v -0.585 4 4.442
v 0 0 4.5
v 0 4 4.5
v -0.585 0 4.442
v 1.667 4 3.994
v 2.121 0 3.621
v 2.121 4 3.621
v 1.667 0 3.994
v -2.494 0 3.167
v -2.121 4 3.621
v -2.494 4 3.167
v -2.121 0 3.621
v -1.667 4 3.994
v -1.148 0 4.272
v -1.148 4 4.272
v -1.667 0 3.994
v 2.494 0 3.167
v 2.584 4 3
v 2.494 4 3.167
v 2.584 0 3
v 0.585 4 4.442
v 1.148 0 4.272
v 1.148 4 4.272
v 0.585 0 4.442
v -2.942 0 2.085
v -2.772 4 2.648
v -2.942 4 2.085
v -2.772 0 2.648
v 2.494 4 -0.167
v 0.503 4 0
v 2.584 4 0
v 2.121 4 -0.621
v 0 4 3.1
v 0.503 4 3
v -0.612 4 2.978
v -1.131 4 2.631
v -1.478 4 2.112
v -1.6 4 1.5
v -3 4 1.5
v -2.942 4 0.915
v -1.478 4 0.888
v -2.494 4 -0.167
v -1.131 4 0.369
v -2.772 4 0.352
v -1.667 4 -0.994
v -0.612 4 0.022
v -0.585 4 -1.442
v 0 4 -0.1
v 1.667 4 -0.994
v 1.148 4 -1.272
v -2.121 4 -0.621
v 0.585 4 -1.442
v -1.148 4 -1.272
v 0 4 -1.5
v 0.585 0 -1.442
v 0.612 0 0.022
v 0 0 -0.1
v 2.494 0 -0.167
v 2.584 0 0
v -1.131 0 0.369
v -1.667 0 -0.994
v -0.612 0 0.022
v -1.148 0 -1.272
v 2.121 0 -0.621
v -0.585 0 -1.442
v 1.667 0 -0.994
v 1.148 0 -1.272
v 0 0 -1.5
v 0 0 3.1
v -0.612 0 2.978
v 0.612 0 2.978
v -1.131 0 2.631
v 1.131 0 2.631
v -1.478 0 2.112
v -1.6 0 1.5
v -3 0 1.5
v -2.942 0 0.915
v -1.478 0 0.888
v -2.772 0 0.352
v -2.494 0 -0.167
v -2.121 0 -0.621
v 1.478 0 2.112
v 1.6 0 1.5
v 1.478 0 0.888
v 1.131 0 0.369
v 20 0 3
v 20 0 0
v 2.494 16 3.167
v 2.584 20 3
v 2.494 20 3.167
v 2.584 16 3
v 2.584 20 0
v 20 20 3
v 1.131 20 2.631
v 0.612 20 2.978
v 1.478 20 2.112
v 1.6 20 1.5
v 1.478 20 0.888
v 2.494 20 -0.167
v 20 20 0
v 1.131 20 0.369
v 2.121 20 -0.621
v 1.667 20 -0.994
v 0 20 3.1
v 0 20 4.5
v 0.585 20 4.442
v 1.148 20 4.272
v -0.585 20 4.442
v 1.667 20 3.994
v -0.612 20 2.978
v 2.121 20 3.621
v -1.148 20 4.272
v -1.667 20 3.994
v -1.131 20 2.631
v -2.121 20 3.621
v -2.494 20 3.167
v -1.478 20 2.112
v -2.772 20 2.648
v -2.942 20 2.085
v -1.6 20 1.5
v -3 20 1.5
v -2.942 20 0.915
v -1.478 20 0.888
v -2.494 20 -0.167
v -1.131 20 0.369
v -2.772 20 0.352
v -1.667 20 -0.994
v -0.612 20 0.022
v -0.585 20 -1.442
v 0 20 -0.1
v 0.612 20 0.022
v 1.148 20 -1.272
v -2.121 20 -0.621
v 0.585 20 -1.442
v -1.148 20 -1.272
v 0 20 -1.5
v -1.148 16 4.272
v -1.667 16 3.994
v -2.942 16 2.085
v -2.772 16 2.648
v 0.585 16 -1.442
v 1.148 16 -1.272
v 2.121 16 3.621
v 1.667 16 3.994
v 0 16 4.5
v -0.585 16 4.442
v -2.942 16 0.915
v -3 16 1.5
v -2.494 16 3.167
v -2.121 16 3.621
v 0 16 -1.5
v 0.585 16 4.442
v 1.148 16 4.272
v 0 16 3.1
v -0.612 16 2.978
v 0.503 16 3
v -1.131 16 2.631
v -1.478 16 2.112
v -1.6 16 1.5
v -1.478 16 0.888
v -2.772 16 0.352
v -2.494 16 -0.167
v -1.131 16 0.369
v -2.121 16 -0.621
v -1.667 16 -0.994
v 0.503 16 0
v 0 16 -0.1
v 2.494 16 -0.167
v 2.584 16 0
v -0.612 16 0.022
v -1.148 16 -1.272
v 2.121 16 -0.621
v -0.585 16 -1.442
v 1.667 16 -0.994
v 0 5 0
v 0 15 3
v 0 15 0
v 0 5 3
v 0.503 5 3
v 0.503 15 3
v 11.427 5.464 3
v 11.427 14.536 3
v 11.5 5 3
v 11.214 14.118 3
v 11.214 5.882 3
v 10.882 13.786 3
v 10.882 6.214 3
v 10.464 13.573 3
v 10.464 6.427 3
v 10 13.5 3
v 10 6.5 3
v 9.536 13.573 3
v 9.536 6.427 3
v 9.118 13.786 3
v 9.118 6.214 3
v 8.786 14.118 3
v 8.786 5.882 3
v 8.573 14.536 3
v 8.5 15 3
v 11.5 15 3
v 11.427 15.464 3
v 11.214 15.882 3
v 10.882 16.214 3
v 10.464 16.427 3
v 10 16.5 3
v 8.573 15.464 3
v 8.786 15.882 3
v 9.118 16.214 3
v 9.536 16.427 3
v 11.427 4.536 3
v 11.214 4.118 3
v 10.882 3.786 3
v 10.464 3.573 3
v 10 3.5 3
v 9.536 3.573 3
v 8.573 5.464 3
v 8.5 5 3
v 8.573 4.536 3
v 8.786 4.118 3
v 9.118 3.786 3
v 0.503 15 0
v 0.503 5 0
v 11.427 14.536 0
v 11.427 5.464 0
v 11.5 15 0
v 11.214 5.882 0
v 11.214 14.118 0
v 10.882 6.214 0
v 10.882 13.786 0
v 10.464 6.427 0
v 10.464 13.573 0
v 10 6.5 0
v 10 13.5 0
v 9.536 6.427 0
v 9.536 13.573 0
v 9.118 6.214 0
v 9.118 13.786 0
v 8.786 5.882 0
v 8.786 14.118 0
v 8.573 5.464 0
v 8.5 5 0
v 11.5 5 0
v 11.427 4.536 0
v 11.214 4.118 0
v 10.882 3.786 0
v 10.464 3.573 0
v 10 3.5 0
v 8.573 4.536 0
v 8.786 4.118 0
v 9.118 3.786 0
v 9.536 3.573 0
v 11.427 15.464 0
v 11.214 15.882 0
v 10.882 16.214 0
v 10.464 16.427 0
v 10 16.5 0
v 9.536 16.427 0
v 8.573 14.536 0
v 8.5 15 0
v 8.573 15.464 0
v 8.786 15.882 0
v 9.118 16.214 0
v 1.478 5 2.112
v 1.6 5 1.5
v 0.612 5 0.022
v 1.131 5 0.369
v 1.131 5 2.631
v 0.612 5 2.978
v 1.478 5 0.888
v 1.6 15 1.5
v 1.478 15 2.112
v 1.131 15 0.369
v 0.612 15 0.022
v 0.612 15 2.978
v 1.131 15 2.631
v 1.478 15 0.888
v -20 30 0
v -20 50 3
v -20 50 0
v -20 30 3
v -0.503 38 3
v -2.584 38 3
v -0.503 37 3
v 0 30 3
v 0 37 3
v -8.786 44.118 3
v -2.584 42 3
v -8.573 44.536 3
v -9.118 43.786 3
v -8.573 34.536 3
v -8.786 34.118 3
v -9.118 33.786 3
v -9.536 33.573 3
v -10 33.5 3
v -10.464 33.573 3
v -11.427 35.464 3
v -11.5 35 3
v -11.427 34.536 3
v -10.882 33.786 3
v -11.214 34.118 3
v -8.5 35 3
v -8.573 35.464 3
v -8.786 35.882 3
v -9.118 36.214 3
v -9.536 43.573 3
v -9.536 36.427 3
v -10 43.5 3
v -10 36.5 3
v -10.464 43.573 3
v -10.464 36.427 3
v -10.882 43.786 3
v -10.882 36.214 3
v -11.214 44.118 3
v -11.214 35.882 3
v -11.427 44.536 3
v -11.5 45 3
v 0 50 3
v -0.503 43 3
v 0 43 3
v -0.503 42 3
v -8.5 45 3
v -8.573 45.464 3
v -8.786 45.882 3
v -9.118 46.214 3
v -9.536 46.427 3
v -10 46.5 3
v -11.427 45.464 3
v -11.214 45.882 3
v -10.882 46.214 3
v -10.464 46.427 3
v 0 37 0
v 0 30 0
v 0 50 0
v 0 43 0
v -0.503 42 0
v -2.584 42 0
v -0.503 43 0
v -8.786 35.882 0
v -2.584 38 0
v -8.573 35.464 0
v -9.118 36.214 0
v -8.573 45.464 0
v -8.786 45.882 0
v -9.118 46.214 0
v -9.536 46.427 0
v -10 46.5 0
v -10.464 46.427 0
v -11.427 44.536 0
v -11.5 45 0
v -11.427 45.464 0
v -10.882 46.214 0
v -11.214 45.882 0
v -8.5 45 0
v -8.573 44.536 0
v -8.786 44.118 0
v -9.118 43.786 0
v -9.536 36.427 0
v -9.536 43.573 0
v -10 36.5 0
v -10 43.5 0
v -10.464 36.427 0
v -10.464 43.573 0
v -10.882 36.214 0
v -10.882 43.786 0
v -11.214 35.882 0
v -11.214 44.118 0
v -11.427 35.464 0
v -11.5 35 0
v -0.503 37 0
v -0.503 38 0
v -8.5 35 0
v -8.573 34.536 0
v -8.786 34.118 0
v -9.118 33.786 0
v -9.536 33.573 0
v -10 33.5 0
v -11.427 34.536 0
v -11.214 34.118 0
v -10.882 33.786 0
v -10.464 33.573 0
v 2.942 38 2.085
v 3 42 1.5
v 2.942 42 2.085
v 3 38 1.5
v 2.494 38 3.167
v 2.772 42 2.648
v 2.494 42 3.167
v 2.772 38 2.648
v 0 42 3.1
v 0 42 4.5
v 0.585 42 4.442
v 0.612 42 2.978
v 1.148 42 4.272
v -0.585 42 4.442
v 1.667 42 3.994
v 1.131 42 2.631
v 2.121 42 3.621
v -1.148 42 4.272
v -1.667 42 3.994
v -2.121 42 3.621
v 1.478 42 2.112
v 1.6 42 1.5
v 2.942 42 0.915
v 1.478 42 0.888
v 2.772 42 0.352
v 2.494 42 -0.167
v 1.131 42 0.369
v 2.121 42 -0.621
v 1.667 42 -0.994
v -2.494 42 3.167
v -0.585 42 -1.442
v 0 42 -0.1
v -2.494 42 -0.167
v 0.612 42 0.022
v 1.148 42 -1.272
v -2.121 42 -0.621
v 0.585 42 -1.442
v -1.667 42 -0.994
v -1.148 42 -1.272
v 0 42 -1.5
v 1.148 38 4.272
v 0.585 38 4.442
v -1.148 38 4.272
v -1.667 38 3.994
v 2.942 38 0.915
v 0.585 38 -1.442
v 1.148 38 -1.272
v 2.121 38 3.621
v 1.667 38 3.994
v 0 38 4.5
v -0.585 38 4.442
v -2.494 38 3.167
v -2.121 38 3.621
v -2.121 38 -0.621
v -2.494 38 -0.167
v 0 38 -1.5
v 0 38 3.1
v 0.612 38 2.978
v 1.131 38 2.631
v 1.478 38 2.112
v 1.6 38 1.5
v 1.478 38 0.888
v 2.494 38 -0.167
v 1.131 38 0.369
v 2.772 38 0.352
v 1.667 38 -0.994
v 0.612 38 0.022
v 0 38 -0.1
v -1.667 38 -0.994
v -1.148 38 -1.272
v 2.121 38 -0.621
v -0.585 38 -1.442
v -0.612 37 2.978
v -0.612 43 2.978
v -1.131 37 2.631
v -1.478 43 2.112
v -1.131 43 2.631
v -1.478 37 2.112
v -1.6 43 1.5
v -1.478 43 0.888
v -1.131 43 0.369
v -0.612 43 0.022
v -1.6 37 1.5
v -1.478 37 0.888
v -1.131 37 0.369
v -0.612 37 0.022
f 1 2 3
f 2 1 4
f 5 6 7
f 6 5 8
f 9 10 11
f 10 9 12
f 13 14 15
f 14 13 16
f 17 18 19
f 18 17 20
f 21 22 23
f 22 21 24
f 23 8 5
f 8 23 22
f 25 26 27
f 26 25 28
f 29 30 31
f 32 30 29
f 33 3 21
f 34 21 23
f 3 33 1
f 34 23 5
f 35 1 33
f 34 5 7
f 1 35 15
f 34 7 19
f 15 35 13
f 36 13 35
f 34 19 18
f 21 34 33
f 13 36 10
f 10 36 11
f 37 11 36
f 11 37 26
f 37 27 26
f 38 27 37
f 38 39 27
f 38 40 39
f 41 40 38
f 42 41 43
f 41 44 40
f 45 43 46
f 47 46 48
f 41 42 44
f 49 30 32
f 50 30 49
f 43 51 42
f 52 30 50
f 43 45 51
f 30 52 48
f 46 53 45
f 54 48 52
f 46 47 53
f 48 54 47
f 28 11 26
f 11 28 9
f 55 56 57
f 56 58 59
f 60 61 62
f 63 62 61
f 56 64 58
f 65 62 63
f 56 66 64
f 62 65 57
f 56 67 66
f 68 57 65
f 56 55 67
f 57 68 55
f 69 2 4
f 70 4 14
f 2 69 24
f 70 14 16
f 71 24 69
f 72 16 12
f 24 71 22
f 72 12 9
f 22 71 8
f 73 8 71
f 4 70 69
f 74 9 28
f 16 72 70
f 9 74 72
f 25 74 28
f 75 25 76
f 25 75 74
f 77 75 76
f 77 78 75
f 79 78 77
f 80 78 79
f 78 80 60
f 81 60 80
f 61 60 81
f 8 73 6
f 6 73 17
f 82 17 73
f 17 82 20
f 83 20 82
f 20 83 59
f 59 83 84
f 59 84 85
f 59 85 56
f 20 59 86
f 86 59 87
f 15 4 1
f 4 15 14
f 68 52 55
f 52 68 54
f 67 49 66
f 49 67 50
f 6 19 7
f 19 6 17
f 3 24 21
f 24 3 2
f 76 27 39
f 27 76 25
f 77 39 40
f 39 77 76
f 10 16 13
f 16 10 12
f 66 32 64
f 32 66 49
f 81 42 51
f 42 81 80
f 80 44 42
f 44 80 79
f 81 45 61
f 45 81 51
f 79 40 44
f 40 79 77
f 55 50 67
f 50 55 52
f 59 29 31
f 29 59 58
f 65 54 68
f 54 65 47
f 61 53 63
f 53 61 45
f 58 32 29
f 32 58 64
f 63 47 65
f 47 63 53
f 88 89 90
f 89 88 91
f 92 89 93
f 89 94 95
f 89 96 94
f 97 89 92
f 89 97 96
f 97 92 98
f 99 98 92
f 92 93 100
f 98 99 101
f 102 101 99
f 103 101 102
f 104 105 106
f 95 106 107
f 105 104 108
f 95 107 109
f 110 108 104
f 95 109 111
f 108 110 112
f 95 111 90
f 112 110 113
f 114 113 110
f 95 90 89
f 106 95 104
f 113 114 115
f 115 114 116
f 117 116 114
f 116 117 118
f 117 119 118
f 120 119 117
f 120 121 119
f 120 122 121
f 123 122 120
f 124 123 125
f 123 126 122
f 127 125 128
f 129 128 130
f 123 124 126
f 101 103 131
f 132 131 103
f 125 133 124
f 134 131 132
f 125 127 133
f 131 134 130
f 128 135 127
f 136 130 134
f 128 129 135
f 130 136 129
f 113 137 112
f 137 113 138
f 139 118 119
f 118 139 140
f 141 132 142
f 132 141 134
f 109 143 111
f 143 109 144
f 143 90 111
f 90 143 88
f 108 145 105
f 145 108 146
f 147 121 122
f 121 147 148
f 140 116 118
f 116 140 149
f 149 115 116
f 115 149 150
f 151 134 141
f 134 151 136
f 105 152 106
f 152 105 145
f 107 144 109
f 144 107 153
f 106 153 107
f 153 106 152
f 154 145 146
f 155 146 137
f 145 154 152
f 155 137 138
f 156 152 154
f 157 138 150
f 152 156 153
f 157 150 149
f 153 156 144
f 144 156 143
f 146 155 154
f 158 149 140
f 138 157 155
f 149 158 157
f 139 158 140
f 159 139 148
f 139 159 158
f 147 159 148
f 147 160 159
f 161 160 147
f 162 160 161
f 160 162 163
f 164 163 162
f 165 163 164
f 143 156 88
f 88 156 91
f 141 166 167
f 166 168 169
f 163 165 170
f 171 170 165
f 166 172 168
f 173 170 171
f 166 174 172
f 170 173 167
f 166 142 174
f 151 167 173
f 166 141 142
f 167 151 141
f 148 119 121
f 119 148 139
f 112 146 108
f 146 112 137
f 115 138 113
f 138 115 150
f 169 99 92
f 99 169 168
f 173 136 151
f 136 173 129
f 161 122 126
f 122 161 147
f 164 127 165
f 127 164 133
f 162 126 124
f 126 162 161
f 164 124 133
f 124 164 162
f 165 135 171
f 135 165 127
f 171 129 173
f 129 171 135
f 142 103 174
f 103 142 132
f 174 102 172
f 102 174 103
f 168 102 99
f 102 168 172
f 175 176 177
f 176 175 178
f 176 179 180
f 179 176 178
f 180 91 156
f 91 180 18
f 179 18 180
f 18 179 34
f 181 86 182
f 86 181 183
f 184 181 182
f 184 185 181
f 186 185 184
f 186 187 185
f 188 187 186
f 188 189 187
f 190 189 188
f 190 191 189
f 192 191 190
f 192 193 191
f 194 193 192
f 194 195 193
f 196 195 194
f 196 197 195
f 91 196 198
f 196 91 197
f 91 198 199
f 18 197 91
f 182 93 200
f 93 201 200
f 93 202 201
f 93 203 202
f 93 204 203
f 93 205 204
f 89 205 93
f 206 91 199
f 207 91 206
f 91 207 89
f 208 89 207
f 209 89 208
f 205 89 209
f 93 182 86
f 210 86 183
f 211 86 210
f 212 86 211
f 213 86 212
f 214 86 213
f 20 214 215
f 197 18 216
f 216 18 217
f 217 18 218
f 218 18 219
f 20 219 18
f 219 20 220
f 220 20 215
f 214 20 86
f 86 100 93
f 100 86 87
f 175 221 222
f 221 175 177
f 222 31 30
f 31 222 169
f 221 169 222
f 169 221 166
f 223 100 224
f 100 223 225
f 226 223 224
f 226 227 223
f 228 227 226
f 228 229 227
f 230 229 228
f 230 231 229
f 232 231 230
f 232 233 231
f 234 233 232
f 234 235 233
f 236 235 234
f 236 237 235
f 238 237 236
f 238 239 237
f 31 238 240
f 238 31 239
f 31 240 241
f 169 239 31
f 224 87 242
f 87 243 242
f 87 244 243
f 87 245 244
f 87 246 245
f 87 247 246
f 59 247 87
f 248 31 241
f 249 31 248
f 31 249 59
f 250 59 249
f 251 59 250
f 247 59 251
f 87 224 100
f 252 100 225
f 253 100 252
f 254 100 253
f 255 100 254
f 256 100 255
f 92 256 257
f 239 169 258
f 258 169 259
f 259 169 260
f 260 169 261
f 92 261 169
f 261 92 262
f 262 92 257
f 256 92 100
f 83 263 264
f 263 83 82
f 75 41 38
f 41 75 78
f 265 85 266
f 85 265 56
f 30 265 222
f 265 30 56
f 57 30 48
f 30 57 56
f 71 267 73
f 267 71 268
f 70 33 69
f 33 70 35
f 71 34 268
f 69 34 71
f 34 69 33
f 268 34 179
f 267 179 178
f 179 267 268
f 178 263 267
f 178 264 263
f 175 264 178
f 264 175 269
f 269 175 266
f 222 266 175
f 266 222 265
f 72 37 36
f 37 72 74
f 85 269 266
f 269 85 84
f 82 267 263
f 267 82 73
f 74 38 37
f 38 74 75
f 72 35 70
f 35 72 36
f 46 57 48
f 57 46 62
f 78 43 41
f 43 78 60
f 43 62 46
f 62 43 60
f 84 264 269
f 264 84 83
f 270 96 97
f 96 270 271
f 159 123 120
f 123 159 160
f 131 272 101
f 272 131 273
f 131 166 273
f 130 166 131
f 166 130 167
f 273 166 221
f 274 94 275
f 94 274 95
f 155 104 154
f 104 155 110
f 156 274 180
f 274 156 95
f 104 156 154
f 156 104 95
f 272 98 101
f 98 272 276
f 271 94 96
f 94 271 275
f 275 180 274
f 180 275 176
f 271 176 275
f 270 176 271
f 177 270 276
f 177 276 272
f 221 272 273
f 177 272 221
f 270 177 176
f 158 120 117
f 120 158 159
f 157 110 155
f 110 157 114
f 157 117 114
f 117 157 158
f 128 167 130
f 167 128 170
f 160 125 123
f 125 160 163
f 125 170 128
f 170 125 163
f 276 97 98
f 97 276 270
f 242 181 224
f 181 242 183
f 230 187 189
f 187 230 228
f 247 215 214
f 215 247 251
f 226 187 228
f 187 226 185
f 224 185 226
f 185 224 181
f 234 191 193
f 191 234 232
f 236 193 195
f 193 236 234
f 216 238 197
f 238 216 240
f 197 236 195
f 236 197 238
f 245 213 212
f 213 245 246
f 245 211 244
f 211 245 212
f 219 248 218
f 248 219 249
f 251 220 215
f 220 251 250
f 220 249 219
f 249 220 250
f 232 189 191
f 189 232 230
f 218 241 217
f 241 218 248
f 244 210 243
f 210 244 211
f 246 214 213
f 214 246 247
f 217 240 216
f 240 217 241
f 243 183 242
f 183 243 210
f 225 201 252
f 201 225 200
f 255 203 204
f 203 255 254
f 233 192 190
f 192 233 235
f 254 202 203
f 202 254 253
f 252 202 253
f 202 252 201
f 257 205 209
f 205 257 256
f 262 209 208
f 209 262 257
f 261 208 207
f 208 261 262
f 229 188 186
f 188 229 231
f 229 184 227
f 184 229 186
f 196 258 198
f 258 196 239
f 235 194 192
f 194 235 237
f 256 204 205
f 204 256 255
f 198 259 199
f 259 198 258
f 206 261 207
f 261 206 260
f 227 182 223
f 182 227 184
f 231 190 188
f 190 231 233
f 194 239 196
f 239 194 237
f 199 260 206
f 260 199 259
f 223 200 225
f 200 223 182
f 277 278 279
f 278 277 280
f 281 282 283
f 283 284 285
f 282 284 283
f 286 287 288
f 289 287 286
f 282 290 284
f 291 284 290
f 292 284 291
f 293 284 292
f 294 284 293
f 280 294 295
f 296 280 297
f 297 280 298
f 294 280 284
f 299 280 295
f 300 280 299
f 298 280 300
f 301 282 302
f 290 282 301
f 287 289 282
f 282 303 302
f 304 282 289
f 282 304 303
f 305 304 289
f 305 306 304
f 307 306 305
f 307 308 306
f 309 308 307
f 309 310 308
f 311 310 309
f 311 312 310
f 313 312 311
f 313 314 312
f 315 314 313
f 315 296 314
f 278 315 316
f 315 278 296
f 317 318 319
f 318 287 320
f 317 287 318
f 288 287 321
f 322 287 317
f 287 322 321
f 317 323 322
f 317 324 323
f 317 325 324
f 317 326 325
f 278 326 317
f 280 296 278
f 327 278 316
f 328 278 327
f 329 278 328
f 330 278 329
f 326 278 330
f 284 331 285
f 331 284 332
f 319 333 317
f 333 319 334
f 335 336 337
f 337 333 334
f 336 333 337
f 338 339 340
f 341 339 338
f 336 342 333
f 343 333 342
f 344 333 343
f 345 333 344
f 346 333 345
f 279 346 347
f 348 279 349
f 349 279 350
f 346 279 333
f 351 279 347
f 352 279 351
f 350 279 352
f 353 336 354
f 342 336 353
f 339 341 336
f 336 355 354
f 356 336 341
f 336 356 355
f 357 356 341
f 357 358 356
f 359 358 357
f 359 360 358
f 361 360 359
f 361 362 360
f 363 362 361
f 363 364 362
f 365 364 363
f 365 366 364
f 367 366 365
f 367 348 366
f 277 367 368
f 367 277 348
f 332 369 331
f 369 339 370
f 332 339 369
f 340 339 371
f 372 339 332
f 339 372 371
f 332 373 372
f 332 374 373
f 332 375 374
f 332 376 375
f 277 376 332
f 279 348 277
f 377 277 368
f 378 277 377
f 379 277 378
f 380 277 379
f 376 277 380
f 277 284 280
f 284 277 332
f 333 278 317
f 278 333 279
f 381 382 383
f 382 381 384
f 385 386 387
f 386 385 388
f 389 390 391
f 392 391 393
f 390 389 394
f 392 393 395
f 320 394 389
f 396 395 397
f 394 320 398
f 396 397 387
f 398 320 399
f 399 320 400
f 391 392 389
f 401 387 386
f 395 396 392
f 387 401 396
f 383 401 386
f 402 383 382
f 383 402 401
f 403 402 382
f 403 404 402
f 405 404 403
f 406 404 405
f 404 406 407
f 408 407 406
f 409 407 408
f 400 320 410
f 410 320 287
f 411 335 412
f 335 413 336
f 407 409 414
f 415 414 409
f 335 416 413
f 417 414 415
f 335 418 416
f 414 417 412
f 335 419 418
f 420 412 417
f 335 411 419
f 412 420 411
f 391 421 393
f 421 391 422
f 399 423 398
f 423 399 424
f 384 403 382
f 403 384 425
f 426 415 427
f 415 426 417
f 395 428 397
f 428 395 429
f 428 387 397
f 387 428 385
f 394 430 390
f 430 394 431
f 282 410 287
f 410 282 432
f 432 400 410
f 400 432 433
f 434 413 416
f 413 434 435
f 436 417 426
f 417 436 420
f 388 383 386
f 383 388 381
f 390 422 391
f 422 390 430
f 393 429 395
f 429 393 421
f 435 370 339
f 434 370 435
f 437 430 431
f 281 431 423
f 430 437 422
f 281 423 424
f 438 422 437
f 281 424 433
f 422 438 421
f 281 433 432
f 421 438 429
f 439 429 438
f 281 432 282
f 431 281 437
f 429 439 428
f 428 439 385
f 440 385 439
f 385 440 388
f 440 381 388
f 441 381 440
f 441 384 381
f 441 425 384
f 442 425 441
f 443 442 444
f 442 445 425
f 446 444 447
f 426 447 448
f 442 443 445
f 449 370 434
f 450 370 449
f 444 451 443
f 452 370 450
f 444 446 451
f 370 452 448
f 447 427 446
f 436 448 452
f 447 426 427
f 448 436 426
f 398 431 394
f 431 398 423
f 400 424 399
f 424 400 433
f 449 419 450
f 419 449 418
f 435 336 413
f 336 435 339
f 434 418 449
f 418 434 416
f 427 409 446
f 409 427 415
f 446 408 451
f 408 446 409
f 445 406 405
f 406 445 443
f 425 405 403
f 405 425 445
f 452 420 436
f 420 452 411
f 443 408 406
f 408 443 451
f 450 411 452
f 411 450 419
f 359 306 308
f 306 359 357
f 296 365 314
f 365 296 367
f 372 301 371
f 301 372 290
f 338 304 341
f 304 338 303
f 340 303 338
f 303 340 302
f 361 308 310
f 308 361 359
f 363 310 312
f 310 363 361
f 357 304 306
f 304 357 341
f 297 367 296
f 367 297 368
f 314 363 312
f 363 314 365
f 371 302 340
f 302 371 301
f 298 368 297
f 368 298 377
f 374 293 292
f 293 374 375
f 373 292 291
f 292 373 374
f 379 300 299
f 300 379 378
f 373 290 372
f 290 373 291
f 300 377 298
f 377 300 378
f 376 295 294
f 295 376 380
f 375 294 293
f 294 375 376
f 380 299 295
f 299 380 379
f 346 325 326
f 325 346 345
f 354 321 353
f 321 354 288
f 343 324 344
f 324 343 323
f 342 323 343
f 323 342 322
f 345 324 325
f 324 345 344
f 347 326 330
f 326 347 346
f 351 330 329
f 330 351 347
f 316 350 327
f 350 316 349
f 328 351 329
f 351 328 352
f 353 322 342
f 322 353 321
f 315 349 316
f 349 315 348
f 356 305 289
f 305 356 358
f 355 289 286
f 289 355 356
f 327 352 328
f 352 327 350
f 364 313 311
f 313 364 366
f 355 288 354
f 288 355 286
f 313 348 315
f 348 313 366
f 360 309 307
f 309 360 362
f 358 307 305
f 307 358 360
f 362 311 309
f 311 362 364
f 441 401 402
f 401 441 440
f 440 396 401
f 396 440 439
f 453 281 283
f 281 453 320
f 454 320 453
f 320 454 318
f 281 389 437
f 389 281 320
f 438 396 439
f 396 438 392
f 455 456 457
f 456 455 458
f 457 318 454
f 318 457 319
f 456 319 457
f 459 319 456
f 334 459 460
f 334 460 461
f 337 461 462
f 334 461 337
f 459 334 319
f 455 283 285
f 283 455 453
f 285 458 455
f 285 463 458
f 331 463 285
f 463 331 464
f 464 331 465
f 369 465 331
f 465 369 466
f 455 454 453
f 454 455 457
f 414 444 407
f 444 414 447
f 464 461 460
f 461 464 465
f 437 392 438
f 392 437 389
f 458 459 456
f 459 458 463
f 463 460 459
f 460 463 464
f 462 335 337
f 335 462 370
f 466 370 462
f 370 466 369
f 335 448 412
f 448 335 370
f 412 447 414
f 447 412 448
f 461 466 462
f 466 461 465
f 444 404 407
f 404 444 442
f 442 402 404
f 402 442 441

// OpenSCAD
// Parameters for the hinge
hinge_length = 20;  // Total width/length of the hinge along the axis
plate_length = 20;  // Length of the mounting plate (from hinge edge to end)
thickness = 3;      // Thickness of the plate and wall compatibility
knuckle_width = 4;  // Width of each knuckle along the axis
knuckle_radius = 3; // Radius of the knuckles (outer diameter 6mm)
pin_radius = 1.6;   // Radius for 3.2mm pin hole (slight clearance for 3mm filament)
hole_radius = 1.5;  // Radius for 3mm mounting screw holes

// Module to generate one hinge part (box or lid)
module hinge_part(knuckle_y_centers, dir) {
    difference() {
        union() {
            // Mounting plate
            if (dir == 1) {
                // Box plate: from x=0 to plate_length
                cube([plate_length, hinge_length, thickness]);
            } else {
                // Lid plate: from x=-plate_length to 0 (mirrored)
                translate([-plate_length, 0, 0]) cube([plate_length, hinge_length, thickness]);
            }
            // Knuckles (solid cylinders along y-axis)
            for (yc = knuckle_y_centers) {
                translate([0, yc, thickness / 2]) {
                    rotate([90, 0, 0]) 
                        cylinder(h = knuckle_width, r = knuckle_radius, center = true, $fn = 32);
                }
            }
        }
        // Pin holes through knuckles (along y-axis)
        for (yc = knuckle_y_centers) {
            translate([0, yc, thickness / 2]) {
                rotate([90, 0, 0]) 
                    cylinder(h = knuckle_width + 2, r = pin_radius, center = true, $fn = 16);
            }
        }
        // Mounting holes (along z-axis, through thickness)
        hole_y_list = [5, 15];
        hole_x_rel = plate_length / 2;
        for (yh = hole_y_list) {
            xh = dir * hole_x_rel;
            translate([xh, yh, thickness / 2]) 
                cylinder(h = thickness + 2, r = hole_radius, center = true, $fn = 20);
        }
    }
}

// Render both parts side-by-side for visualization (print separately)
// Box part (with two outer knuckles)
hinge_part([2, 18], 1);

// Lid part (with one middle knuckle), translated along y to avoid overlap
translate([0, hinge_length + 10, 0]) 
    hinge_part([10], -1);
